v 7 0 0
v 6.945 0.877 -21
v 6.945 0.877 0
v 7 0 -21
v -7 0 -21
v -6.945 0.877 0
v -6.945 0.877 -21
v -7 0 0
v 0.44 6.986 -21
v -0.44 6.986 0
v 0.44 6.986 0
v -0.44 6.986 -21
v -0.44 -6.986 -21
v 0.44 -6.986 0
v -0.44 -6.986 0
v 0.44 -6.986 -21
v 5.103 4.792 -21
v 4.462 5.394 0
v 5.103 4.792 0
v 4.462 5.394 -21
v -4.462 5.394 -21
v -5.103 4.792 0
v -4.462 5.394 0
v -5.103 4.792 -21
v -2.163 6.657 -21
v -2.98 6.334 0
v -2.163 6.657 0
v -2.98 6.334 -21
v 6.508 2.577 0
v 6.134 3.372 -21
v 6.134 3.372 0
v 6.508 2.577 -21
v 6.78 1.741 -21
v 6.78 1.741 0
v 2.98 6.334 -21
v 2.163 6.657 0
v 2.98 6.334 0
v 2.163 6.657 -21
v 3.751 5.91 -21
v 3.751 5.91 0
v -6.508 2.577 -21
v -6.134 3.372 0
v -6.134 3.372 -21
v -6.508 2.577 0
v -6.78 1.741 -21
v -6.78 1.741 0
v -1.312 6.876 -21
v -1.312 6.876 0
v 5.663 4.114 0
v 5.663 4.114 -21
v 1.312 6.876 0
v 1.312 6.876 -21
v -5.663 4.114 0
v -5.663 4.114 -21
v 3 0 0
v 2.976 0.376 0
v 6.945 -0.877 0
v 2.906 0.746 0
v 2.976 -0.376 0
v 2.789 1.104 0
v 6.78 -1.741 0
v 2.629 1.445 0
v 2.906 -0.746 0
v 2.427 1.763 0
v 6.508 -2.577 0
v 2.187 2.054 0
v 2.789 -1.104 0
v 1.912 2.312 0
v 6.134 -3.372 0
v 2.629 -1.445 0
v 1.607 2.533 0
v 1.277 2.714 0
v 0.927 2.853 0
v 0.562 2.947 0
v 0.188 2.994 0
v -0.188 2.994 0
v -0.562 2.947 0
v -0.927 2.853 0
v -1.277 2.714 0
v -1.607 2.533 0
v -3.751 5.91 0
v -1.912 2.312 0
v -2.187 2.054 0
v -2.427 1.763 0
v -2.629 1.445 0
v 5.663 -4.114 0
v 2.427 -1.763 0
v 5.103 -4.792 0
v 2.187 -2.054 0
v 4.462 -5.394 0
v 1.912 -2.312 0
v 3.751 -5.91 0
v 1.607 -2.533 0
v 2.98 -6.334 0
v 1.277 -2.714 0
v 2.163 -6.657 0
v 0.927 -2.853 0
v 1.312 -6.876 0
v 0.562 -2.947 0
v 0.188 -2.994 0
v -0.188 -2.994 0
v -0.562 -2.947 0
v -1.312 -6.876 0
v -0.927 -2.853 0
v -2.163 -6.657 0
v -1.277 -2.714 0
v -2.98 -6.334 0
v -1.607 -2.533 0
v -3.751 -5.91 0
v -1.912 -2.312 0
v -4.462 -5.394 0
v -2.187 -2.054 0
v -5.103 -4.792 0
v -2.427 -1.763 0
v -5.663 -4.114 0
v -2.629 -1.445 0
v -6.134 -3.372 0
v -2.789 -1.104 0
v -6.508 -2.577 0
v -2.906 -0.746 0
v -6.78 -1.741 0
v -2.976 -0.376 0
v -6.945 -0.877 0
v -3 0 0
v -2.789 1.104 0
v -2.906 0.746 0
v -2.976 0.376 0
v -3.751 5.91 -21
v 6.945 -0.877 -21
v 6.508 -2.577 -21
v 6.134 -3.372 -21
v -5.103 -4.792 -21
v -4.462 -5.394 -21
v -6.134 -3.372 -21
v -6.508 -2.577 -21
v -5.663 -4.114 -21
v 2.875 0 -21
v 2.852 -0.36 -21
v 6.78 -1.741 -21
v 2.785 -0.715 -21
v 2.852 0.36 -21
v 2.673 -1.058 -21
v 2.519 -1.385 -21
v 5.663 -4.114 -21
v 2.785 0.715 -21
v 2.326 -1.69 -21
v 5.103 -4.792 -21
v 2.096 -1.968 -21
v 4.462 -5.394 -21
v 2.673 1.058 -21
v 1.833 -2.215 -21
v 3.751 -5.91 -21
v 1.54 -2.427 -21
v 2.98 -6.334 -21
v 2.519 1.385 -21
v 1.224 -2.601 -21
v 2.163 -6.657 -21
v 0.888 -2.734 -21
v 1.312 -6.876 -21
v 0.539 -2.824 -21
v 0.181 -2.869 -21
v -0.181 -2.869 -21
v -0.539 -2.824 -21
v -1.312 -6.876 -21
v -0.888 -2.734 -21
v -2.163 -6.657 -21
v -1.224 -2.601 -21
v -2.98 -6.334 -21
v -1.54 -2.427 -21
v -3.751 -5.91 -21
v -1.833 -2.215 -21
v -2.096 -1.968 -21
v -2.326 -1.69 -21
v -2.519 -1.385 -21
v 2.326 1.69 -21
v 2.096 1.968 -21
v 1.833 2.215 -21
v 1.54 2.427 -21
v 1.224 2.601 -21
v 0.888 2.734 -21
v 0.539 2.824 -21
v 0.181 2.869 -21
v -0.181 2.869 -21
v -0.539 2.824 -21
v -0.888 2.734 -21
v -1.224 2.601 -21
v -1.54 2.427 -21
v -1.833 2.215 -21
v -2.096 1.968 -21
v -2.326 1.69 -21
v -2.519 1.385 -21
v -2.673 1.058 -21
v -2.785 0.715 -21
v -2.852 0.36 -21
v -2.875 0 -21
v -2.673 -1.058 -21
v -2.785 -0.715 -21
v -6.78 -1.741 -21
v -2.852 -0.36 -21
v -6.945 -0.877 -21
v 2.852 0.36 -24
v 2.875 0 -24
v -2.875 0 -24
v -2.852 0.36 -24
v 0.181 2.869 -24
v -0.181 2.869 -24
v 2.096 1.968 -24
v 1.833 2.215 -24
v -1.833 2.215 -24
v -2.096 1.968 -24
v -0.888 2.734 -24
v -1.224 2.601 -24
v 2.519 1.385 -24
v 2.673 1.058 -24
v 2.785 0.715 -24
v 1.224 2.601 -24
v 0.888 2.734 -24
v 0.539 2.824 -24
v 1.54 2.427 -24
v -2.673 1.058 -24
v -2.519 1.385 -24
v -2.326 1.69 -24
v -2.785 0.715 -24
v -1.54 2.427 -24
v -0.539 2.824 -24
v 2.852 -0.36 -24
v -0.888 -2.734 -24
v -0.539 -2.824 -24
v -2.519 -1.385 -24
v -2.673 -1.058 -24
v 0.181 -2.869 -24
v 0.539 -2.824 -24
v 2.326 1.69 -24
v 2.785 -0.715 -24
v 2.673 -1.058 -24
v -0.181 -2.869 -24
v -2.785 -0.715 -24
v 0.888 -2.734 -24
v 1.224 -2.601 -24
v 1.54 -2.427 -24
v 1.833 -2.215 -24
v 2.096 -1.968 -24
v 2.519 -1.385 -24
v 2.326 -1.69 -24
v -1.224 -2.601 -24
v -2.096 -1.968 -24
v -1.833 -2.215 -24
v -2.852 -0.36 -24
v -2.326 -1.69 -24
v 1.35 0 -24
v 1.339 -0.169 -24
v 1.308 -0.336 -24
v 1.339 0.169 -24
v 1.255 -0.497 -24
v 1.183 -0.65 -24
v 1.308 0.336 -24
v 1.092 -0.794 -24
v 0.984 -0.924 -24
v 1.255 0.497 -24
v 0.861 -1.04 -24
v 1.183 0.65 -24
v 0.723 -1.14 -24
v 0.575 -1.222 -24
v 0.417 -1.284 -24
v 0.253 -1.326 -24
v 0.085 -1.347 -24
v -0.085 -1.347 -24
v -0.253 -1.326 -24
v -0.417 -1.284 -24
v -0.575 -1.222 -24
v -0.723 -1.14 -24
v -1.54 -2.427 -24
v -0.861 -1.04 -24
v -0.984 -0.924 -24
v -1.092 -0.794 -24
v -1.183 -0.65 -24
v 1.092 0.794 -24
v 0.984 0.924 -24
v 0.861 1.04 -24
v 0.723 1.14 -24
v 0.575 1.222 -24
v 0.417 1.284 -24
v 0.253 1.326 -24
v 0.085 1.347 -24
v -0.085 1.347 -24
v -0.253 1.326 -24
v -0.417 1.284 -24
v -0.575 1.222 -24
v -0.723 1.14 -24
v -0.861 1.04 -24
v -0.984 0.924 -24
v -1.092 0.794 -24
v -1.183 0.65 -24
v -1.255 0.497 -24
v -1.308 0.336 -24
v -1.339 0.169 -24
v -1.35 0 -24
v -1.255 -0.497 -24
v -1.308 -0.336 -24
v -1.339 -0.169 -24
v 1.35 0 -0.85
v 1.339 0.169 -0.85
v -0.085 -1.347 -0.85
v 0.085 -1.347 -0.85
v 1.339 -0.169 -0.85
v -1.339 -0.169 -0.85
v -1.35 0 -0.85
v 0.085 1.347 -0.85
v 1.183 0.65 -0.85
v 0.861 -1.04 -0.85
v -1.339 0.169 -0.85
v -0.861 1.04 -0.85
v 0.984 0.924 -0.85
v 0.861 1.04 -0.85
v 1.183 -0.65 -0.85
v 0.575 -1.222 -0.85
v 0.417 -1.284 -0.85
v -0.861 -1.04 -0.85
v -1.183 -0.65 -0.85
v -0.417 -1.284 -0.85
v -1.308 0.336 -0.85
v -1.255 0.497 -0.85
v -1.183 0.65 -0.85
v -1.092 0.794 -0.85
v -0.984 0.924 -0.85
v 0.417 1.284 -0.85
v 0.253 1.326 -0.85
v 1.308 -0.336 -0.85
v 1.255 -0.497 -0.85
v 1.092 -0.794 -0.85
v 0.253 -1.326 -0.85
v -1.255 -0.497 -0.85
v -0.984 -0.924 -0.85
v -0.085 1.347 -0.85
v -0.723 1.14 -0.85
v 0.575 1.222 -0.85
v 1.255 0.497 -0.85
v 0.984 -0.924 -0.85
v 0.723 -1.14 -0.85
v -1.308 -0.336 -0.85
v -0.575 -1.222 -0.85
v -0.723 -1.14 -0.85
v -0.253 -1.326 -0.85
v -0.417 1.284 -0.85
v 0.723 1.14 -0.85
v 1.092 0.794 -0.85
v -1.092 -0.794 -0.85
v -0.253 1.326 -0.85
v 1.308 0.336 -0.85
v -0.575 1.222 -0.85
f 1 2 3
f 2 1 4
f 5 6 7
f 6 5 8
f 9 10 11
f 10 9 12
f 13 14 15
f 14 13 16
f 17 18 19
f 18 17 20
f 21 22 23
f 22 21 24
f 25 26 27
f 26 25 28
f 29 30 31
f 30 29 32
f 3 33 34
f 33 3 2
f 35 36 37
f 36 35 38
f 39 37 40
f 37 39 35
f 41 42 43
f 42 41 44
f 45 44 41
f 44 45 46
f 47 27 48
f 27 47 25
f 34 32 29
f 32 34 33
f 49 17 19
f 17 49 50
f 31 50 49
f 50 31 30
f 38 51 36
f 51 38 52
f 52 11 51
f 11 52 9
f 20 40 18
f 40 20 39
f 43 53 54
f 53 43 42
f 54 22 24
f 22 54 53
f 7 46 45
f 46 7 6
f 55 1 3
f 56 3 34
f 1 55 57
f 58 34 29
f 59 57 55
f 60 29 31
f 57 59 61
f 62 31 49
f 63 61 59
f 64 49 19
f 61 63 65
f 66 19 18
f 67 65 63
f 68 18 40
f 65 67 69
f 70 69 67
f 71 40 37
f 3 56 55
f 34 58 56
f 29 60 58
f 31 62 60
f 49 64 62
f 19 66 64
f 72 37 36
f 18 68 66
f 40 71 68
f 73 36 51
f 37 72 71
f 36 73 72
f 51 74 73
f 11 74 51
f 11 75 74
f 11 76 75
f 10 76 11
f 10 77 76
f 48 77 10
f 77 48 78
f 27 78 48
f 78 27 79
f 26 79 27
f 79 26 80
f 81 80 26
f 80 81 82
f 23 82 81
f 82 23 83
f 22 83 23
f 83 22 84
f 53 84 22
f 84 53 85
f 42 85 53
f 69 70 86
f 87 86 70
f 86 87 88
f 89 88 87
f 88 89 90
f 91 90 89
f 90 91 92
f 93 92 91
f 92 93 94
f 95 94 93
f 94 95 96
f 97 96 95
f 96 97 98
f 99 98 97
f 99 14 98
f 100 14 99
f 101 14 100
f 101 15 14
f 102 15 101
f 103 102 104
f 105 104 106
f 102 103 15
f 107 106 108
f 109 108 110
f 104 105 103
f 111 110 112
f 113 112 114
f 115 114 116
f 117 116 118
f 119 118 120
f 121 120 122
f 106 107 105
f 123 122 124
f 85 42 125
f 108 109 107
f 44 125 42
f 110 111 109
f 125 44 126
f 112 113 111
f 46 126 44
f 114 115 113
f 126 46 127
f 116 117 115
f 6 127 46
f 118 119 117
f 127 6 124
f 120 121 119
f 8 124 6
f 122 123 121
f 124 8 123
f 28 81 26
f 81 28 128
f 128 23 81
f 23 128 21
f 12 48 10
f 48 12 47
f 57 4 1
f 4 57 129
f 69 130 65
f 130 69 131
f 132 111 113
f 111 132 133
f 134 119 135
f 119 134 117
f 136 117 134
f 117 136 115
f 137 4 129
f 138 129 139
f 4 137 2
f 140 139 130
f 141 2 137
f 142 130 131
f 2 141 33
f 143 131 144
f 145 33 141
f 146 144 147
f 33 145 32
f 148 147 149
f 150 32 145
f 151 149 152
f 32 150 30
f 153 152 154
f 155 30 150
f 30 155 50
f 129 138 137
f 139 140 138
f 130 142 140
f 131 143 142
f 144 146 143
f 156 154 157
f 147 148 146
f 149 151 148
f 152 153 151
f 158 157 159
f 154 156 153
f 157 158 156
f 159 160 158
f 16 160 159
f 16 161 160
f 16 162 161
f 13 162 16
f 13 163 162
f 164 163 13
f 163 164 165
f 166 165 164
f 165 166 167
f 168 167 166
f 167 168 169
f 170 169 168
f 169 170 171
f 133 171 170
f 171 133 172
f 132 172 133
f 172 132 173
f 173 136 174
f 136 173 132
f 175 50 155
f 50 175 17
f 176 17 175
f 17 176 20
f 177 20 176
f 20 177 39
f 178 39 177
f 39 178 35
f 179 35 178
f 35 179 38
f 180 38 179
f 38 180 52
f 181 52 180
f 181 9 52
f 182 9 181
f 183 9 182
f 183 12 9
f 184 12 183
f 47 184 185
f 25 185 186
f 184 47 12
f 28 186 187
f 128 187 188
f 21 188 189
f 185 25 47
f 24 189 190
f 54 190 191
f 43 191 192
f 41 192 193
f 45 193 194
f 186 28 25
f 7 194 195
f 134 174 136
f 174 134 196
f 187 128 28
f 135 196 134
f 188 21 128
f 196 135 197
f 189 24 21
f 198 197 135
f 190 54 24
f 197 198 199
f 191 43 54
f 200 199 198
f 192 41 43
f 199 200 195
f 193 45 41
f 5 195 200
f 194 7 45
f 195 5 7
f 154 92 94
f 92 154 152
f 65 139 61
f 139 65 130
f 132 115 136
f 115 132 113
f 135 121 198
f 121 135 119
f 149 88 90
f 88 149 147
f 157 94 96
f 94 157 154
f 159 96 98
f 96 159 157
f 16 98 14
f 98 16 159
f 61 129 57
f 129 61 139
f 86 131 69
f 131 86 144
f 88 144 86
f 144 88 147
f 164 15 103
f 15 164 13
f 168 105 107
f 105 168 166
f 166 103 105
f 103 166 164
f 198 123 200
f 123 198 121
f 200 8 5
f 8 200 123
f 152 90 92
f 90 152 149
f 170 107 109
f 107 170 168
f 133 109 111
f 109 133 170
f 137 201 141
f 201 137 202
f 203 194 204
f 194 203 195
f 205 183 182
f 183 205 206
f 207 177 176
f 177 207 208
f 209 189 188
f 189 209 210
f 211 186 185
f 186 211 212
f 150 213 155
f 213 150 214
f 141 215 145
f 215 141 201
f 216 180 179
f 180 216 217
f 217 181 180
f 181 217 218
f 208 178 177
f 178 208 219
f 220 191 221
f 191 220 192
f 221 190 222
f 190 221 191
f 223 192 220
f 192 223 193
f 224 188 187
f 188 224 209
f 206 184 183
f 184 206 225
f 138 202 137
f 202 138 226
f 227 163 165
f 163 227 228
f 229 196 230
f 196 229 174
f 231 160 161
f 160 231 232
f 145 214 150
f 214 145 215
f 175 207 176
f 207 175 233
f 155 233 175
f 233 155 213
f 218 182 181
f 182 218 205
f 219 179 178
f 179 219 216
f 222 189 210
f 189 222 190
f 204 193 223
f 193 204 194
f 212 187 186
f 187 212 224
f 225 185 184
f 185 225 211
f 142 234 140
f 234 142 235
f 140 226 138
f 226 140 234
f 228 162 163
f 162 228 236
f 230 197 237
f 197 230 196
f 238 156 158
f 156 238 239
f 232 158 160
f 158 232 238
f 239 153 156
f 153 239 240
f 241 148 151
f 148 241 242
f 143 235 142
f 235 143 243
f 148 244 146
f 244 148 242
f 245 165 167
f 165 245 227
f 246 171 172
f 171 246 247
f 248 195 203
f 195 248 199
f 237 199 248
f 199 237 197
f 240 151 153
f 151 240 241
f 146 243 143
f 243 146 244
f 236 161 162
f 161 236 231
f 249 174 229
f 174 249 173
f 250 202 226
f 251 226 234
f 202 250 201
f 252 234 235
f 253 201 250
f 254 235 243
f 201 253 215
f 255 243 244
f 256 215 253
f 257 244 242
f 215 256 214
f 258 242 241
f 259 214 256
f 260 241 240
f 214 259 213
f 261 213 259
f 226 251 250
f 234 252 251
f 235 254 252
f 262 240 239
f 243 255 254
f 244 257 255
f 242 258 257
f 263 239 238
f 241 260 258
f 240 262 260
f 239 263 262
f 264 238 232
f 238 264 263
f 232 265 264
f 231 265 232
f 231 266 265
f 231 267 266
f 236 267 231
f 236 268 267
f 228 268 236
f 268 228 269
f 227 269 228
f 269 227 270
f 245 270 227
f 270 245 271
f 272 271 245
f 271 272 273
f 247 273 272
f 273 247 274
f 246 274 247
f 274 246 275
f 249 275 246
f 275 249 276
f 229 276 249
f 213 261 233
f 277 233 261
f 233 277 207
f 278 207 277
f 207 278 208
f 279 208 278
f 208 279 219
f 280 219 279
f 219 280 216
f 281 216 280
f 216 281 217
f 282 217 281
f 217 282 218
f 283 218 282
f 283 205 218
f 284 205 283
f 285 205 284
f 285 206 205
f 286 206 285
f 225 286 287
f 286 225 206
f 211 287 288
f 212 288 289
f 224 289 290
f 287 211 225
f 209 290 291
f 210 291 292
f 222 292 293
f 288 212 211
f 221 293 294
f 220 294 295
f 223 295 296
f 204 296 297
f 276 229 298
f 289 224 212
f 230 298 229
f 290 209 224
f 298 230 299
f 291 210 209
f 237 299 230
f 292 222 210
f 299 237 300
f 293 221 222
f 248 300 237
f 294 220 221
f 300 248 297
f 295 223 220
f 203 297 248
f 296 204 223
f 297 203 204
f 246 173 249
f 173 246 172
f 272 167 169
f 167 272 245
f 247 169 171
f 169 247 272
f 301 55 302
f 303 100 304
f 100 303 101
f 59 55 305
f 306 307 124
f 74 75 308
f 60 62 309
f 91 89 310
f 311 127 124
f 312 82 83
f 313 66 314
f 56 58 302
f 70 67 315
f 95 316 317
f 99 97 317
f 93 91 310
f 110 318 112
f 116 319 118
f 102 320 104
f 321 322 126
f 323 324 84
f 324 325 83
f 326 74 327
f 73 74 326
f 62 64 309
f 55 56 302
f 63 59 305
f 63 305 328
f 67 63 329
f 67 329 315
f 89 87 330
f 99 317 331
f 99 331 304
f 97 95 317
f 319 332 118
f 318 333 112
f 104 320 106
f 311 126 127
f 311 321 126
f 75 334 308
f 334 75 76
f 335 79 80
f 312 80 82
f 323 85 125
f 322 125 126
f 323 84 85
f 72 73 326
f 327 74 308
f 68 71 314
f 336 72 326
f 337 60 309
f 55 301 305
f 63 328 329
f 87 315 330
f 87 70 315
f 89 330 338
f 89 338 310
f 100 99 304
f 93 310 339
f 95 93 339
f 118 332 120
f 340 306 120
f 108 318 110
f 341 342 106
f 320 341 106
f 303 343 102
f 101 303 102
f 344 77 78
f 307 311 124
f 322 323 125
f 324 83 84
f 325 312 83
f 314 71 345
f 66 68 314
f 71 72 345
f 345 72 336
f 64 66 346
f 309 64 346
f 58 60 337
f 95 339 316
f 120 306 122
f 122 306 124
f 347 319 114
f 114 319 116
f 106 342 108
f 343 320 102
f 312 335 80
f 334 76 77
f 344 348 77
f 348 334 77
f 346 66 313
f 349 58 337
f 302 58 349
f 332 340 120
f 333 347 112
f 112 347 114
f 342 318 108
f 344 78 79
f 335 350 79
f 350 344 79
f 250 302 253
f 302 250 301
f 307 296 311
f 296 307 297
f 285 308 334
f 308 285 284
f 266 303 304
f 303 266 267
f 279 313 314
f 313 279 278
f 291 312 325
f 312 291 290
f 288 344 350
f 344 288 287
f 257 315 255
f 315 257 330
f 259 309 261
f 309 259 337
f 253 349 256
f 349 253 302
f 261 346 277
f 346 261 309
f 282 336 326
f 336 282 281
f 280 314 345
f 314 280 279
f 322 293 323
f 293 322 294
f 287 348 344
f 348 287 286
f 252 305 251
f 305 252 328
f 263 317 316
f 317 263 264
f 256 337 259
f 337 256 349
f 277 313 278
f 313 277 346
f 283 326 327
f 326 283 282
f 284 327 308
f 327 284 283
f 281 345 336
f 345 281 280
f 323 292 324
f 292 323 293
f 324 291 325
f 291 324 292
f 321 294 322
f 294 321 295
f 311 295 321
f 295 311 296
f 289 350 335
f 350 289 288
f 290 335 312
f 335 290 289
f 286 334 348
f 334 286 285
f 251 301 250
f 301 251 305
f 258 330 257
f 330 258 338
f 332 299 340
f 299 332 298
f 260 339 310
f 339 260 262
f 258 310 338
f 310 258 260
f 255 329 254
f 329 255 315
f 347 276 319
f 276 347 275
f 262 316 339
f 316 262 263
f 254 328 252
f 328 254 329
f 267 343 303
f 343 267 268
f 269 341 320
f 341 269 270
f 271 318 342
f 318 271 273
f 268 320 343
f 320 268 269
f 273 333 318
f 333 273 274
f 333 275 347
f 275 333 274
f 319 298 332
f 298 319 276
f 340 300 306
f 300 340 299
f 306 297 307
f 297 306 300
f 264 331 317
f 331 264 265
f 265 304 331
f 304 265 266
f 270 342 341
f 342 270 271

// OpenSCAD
$fn = 50;

difference() {
	union() {
		translate(v = [0, 0, -21.0]) {
			cylinder(h = 21, r = 7.0);
		}
		#translate(v = [0, 0, -24.0]) {
			cylinder(h = 24, r = 2.875);
		}
	}
	union() {
		translate(v = [0, 0, 0]) {
			rotate(a = [0, 0, 0]) {
				difference() {
					union() {
						translate(v = [0, 0, -24.0]) {
							cylinder(h = 24, r = 1.0);
						}
						translate(v = [0, 0, -0.85]) {
							cylinder(h = 0.85, r1 = 1.35, r2 = 3.0);
						}
						translate(v = [0, 0, -24.0]) {
							cylinder(h = 24, r = 1.35);
						}
						translate(v = [0, 0, -24.0]) {
							cylinder(h = 24, r = 1.0);
						}
					}
					union();
				}
			}
		}
	}
}
